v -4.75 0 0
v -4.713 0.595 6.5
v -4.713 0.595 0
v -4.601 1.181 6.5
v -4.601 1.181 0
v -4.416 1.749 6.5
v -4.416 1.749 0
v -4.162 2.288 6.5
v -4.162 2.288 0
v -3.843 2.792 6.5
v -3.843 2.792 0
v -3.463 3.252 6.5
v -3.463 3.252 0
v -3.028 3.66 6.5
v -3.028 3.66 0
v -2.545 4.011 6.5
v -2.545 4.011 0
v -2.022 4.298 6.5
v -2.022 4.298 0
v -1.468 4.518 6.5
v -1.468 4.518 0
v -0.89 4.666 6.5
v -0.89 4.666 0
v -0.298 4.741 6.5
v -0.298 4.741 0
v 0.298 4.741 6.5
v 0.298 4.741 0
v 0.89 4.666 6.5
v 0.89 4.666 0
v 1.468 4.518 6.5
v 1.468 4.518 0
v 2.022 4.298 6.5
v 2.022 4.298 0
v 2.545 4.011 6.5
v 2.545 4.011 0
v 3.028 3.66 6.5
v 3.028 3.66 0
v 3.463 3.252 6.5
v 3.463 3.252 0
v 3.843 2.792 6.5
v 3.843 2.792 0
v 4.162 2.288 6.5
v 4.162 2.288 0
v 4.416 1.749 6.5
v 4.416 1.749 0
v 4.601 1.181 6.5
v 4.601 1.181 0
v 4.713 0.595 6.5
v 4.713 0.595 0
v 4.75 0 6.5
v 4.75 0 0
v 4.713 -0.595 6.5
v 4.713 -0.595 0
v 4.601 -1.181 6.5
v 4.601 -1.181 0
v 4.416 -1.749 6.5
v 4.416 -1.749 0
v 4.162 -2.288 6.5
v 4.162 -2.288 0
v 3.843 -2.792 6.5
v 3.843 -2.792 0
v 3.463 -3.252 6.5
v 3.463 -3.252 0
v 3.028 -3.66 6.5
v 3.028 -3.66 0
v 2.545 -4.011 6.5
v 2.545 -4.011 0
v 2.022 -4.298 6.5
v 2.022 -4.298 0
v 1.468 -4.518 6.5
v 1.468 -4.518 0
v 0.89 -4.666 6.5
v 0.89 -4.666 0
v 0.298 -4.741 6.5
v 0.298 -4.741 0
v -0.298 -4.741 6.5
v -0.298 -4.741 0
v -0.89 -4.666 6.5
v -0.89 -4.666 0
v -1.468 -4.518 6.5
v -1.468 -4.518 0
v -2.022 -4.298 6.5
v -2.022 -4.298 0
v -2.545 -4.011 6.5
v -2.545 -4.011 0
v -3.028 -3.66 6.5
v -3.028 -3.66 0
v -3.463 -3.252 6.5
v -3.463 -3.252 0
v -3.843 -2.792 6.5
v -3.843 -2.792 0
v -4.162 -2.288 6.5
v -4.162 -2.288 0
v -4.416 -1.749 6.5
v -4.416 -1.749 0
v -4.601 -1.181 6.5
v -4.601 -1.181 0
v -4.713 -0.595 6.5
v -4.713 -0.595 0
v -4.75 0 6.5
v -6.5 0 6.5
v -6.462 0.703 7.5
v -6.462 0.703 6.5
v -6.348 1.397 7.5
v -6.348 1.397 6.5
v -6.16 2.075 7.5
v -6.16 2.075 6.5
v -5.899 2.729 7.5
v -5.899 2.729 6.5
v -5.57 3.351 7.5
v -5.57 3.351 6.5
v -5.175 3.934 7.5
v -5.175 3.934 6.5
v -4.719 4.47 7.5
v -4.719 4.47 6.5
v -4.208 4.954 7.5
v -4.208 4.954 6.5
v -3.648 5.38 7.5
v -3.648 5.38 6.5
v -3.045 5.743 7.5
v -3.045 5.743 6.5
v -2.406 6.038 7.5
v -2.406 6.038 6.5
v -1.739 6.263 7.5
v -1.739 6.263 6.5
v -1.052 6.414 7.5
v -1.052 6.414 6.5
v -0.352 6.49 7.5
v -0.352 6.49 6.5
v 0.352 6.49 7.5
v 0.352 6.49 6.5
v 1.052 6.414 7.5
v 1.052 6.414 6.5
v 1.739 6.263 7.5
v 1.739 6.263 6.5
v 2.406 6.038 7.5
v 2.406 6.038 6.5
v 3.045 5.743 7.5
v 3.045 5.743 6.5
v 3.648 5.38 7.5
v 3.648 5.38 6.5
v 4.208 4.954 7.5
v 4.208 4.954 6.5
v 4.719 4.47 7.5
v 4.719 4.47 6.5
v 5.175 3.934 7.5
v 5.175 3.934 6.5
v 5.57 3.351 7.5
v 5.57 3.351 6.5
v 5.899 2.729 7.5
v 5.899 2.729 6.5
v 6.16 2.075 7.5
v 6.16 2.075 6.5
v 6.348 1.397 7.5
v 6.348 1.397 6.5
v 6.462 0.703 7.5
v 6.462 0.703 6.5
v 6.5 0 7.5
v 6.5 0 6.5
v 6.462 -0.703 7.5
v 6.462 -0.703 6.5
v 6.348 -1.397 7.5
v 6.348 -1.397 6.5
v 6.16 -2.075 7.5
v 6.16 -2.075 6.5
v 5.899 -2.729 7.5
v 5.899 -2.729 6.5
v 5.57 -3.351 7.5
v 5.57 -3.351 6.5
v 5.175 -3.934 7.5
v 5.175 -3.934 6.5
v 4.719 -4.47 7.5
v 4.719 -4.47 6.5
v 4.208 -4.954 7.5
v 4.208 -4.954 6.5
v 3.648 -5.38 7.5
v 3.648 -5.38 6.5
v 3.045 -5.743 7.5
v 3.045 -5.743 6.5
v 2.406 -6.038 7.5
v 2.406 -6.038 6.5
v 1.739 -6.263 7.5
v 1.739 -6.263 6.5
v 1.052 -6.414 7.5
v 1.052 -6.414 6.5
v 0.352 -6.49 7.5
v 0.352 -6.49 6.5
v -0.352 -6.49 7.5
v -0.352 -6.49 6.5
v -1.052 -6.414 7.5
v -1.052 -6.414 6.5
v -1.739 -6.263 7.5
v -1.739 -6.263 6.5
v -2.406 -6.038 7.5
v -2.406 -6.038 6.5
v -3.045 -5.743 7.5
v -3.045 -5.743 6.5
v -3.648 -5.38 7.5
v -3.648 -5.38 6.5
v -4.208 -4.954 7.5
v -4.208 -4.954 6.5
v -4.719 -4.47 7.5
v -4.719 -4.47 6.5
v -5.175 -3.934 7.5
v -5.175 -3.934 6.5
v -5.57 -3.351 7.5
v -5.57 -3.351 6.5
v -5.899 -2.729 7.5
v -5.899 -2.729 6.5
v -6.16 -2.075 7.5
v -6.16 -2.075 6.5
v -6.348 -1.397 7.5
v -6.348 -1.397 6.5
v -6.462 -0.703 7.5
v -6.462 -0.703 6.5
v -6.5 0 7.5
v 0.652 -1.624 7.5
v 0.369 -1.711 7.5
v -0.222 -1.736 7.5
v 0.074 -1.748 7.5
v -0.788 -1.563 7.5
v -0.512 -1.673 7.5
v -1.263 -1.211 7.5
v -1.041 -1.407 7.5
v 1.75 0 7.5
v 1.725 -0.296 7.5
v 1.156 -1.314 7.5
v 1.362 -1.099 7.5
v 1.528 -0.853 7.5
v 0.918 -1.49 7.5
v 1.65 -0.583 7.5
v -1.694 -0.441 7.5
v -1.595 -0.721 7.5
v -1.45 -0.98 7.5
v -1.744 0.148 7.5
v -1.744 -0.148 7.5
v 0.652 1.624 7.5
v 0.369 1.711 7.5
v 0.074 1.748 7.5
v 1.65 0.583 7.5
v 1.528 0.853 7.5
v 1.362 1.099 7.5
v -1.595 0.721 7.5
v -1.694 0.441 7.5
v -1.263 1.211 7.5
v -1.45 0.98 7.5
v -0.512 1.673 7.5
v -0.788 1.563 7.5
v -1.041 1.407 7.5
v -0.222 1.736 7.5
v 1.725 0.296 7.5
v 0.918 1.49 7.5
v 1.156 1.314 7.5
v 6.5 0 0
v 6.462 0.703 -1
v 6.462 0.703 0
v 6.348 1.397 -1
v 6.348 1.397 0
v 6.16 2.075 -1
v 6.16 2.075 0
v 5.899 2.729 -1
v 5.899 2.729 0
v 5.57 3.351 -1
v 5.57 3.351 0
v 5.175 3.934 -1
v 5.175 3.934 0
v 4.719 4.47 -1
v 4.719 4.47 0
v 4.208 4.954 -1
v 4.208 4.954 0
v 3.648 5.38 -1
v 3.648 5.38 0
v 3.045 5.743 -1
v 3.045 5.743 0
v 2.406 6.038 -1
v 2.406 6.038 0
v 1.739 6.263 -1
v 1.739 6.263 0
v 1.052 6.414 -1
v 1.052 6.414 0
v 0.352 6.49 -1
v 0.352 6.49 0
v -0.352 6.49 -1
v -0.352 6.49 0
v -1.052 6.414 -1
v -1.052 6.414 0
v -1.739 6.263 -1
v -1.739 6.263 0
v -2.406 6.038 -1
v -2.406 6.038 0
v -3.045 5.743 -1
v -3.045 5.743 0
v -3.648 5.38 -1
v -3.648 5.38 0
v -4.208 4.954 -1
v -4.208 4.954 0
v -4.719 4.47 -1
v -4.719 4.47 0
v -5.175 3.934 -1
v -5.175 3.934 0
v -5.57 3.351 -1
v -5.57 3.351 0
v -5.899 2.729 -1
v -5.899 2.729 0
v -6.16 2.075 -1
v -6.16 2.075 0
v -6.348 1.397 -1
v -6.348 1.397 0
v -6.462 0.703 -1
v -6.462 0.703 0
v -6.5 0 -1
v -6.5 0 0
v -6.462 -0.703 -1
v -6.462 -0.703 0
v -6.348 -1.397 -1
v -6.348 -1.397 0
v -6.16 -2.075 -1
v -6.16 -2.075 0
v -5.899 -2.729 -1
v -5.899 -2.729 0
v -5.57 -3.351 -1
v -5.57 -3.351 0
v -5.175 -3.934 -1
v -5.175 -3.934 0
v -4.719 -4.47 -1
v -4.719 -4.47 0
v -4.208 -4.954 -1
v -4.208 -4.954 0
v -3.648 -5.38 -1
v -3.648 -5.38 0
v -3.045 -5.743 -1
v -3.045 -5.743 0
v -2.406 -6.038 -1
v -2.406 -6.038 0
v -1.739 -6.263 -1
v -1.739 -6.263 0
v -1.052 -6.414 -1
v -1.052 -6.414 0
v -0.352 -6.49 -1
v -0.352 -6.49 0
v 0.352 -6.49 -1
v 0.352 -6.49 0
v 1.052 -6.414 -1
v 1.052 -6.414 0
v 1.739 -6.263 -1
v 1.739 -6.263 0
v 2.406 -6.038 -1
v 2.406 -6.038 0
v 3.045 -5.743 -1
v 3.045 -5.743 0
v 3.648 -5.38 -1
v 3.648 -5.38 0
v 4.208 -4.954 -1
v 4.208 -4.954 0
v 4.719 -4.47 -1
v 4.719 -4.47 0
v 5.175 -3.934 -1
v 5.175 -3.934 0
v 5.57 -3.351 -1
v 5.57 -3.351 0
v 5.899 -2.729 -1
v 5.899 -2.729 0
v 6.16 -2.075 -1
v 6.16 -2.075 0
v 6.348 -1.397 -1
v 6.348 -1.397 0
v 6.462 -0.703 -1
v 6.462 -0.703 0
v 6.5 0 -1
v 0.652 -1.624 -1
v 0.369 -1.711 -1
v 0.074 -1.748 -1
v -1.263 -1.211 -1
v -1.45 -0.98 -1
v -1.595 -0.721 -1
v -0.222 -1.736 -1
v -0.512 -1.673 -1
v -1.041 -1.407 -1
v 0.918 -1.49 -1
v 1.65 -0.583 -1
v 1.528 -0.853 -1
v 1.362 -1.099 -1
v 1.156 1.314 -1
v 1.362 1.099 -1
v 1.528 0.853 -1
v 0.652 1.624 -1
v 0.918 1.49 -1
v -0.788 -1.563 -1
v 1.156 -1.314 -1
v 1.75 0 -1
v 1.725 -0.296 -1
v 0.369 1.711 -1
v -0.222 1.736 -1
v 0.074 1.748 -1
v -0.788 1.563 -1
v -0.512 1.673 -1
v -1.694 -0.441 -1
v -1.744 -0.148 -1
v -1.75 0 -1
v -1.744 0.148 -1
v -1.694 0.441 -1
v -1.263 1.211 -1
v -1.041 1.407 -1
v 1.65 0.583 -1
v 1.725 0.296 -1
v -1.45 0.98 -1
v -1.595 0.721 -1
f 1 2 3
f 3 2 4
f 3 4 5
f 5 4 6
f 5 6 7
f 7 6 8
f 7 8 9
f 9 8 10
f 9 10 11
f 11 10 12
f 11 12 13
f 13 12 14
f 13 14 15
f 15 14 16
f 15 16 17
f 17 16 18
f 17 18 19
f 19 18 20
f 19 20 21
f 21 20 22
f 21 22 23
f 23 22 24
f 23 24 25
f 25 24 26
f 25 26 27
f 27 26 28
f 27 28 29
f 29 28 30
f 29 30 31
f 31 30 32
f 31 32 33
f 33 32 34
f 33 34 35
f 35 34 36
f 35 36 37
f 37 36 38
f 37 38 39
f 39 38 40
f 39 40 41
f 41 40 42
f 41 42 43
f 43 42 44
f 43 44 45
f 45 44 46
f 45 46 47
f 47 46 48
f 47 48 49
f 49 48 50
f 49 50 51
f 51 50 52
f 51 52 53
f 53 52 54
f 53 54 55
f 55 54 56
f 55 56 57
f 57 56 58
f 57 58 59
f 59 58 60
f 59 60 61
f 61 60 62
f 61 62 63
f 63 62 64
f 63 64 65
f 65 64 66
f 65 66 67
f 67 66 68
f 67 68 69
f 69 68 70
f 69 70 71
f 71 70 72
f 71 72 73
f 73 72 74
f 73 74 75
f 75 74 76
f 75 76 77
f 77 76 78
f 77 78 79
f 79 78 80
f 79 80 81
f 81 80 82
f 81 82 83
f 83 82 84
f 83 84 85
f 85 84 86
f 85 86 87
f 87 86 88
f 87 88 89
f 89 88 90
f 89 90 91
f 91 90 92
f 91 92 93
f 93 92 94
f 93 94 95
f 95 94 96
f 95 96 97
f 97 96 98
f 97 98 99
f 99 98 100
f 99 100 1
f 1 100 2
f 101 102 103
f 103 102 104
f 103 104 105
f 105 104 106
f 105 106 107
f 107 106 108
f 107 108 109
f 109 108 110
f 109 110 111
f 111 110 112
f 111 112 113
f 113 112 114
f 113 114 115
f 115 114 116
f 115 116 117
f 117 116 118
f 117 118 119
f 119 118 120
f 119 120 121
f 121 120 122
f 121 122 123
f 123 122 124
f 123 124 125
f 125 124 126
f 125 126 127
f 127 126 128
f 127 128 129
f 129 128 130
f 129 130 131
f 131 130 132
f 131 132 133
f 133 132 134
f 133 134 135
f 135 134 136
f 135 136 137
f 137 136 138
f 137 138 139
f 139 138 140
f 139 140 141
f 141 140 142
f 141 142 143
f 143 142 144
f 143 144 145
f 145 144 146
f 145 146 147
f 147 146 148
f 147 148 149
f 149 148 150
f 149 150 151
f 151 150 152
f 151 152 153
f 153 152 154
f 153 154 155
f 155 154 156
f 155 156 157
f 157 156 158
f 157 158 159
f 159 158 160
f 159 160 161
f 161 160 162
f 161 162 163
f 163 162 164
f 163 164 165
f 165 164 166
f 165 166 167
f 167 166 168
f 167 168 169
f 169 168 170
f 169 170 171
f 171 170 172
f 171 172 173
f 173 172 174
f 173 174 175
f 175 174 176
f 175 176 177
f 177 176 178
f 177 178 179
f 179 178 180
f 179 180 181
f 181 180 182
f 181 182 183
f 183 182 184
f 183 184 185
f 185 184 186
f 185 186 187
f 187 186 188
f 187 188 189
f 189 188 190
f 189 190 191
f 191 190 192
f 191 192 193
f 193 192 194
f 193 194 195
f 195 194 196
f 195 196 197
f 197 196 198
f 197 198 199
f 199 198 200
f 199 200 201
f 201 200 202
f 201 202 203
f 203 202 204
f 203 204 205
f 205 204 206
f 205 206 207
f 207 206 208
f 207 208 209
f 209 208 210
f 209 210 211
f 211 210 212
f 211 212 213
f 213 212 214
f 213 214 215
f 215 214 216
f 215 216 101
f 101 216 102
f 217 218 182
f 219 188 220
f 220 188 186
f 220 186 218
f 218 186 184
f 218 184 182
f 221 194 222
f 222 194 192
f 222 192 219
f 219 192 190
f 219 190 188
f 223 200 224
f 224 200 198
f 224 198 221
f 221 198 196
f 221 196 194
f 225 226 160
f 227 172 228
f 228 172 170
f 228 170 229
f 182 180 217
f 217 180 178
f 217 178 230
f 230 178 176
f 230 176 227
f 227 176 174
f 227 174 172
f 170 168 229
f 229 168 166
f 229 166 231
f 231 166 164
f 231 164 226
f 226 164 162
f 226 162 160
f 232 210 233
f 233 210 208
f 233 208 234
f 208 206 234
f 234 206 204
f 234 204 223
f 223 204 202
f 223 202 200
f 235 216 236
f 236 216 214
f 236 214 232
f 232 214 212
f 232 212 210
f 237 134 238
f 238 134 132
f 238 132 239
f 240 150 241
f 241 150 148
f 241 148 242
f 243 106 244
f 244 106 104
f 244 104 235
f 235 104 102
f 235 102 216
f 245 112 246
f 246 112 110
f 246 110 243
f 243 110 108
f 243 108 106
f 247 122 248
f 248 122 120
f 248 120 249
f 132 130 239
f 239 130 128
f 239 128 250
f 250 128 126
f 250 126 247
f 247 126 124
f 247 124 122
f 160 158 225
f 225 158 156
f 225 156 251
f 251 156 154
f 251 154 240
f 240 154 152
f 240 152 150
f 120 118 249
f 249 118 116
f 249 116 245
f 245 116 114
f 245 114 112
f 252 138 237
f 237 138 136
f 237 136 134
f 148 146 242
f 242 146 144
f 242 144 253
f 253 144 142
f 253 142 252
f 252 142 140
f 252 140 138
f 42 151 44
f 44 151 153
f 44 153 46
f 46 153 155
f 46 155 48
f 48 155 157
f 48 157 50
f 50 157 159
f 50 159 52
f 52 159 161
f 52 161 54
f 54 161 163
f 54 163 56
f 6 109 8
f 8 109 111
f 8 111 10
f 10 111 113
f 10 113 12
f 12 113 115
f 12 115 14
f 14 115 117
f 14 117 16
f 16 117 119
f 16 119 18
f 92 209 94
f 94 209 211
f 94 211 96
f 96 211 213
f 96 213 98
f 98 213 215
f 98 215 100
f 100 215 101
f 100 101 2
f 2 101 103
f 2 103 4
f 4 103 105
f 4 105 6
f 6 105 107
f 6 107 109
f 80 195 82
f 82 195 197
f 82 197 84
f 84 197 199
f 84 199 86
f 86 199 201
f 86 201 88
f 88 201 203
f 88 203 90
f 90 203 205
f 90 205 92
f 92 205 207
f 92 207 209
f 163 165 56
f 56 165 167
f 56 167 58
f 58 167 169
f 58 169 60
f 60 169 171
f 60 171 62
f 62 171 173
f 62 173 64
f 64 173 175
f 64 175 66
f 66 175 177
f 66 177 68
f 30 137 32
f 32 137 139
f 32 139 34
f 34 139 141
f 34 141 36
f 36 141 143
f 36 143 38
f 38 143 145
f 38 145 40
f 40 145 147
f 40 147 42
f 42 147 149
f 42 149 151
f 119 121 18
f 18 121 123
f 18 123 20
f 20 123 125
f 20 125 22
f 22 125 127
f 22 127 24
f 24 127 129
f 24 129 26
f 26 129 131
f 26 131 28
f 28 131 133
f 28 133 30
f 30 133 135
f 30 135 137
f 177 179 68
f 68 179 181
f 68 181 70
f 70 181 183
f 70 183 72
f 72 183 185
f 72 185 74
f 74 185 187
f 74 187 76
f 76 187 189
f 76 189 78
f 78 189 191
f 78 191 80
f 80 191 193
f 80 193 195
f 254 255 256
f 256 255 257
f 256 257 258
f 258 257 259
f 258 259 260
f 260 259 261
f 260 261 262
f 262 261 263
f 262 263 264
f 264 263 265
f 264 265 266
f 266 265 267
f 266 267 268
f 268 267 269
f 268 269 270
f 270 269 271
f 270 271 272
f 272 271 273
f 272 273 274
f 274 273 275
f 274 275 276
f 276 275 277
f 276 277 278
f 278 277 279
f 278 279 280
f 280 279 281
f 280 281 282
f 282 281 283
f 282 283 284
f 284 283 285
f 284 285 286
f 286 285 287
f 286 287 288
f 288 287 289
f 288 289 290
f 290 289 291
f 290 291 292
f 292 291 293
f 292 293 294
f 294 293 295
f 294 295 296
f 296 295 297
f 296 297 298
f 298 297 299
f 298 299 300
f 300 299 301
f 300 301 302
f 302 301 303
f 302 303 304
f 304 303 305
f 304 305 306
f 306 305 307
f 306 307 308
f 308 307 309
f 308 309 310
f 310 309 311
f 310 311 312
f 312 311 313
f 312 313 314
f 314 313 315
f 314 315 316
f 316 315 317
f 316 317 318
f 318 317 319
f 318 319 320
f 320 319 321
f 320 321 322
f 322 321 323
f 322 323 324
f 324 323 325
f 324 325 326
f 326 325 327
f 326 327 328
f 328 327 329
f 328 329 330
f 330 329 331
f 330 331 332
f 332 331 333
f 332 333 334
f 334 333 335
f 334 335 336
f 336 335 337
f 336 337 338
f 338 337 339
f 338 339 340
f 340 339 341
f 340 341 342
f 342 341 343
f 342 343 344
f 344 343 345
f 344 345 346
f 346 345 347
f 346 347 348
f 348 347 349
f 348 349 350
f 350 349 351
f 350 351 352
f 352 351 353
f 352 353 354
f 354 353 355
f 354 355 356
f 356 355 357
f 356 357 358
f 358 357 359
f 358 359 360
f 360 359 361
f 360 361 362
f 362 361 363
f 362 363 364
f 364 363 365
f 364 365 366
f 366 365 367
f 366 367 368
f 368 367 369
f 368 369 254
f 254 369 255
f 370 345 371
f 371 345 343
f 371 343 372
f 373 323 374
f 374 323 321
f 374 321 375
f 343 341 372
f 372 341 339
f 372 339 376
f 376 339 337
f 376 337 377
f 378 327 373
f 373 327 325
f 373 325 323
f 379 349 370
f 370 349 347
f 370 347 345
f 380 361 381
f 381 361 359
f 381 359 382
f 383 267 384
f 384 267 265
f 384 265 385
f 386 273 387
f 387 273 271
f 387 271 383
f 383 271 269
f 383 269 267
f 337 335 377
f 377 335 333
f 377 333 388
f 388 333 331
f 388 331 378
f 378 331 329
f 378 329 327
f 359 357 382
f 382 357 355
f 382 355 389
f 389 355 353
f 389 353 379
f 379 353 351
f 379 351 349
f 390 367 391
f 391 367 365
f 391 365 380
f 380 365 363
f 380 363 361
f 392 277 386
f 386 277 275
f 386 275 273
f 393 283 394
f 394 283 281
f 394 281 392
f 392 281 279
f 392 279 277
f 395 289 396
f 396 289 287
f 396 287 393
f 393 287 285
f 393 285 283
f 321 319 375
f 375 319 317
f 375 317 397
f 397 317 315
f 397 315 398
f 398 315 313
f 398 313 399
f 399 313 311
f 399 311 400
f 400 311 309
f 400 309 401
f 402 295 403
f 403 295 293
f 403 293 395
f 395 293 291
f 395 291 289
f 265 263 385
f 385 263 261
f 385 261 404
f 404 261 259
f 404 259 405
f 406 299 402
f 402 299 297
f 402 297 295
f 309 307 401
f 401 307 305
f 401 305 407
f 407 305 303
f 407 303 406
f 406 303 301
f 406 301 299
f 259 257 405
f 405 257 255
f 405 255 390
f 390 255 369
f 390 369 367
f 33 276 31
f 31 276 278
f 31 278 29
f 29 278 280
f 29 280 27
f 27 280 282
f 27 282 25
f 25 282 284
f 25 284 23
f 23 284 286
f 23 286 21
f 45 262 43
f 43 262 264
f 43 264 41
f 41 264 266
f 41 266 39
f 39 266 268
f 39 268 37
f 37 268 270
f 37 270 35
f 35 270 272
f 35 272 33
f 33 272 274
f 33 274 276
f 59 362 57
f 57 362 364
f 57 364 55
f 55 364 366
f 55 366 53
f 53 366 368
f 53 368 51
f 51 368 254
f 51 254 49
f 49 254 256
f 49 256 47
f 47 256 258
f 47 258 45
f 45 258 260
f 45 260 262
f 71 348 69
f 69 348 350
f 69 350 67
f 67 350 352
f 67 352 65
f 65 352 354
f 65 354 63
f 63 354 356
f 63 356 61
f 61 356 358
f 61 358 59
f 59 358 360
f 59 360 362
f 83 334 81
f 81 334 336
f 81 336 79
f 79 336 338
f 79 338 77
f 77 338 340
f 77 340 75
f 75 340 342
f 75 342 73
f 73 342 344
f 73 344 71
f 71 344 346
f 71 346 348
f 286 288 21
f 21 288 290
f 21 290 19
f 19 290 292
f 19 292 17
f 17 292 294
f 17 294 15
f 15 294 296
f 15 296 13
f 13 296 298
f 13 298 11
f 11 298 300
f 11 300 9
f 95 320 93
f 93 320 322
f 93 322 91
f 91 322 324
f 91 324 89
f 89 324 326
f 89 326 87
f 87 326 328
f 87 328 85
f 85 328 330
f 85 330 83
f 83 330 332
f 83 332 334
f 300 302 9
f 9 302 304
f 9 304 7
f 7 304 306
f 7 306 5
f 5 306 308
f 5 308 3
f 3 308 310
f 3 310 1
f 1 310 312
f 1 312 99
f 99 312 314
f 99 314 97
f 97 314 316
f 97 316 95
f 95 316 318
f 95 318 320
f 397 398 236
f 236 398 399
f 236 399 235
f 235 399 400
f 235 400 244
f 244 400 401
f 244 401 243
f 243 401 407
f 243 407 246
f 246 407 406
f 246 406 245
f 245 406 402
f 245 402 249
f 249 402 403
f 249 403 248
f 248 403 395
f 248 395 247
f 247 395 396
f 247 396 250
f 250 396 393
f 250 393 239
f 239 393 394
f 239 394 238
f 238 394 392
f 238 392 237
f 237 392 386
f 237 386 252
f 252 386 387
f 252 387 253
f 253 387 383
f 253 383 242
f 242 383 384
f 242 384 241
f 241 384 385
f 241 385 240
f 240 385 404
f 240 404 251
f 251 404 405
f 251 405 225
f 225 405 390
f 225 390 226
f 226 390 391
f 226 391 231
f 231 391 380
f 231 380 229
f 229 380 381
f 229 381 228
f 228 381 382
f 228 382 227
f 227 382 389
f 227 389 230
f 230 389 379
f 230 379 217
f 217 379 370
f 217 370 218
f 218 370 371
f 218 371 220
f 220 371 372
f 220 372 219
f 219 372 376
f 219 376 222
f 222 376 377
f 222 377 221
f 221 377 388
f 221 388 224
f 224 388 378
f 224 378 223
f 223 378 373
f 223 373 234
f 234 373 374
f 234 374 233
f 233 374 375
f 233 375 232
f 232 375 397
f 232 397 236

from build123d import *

# Parameters (mm, degrees)
SKETCH_1_R          = 4.75
EXTRUDE_1_DEPTH     = 6.5
SKETCH_2_R          = 6.5
EXTRUDE_2_DEPTH     = 1
EXTRUDE_START       = 1
SKETCH_3_R          = 6.5
EXTRUDE_3_DEPTH     = 1
SKETCH_4_R          = 1.75
CUT_EXTRUDE_1_DEPTH = 21


with BuildPart() as part:
    # 草图1 → 凸台-拉伸1 (new body)
    with BuildSketch(Plane.XY):
        with Locations(Location((0, 0, 0), (0, 0, 180))):
            Circle(SKETCH_1_R)
    extrude(amount=EXTRUDE_1_DEPTH)

    # 草图2 → 凸台-拉伸2 (add)
    with BuildSketch(Plane.XY.offset(6.5)):
        Circle(SKETCH_2_R)
    extrude(amount=EXTRUDE_2_DEPTH)

    # 草图3 → 凸台-拉伸3 (add)
    with BuildSketch(Plane(origin=(0, 0, 0), x_dir=(-1, 0, 0), z_dir=(0, 0, -1)).offset(EXTRUDE_START)):
        with Locations(Location((0, 0, 0), (0, 0, 180))):
            Circle(SKETCH_3_R)
    extrude(amount=-EXTRUDE_3_DEPTH)

    # 草图4 → 切除-拉伸1 (cut)
    with BuildSketch(Plane.XY.offset(7.5)):
        Circle(SKETCH_4_R)
    extrude(amount=-CUT_EXTRUDE_1_DEPTH, mode=Mode.SUBTRACT)


solid = part.part
